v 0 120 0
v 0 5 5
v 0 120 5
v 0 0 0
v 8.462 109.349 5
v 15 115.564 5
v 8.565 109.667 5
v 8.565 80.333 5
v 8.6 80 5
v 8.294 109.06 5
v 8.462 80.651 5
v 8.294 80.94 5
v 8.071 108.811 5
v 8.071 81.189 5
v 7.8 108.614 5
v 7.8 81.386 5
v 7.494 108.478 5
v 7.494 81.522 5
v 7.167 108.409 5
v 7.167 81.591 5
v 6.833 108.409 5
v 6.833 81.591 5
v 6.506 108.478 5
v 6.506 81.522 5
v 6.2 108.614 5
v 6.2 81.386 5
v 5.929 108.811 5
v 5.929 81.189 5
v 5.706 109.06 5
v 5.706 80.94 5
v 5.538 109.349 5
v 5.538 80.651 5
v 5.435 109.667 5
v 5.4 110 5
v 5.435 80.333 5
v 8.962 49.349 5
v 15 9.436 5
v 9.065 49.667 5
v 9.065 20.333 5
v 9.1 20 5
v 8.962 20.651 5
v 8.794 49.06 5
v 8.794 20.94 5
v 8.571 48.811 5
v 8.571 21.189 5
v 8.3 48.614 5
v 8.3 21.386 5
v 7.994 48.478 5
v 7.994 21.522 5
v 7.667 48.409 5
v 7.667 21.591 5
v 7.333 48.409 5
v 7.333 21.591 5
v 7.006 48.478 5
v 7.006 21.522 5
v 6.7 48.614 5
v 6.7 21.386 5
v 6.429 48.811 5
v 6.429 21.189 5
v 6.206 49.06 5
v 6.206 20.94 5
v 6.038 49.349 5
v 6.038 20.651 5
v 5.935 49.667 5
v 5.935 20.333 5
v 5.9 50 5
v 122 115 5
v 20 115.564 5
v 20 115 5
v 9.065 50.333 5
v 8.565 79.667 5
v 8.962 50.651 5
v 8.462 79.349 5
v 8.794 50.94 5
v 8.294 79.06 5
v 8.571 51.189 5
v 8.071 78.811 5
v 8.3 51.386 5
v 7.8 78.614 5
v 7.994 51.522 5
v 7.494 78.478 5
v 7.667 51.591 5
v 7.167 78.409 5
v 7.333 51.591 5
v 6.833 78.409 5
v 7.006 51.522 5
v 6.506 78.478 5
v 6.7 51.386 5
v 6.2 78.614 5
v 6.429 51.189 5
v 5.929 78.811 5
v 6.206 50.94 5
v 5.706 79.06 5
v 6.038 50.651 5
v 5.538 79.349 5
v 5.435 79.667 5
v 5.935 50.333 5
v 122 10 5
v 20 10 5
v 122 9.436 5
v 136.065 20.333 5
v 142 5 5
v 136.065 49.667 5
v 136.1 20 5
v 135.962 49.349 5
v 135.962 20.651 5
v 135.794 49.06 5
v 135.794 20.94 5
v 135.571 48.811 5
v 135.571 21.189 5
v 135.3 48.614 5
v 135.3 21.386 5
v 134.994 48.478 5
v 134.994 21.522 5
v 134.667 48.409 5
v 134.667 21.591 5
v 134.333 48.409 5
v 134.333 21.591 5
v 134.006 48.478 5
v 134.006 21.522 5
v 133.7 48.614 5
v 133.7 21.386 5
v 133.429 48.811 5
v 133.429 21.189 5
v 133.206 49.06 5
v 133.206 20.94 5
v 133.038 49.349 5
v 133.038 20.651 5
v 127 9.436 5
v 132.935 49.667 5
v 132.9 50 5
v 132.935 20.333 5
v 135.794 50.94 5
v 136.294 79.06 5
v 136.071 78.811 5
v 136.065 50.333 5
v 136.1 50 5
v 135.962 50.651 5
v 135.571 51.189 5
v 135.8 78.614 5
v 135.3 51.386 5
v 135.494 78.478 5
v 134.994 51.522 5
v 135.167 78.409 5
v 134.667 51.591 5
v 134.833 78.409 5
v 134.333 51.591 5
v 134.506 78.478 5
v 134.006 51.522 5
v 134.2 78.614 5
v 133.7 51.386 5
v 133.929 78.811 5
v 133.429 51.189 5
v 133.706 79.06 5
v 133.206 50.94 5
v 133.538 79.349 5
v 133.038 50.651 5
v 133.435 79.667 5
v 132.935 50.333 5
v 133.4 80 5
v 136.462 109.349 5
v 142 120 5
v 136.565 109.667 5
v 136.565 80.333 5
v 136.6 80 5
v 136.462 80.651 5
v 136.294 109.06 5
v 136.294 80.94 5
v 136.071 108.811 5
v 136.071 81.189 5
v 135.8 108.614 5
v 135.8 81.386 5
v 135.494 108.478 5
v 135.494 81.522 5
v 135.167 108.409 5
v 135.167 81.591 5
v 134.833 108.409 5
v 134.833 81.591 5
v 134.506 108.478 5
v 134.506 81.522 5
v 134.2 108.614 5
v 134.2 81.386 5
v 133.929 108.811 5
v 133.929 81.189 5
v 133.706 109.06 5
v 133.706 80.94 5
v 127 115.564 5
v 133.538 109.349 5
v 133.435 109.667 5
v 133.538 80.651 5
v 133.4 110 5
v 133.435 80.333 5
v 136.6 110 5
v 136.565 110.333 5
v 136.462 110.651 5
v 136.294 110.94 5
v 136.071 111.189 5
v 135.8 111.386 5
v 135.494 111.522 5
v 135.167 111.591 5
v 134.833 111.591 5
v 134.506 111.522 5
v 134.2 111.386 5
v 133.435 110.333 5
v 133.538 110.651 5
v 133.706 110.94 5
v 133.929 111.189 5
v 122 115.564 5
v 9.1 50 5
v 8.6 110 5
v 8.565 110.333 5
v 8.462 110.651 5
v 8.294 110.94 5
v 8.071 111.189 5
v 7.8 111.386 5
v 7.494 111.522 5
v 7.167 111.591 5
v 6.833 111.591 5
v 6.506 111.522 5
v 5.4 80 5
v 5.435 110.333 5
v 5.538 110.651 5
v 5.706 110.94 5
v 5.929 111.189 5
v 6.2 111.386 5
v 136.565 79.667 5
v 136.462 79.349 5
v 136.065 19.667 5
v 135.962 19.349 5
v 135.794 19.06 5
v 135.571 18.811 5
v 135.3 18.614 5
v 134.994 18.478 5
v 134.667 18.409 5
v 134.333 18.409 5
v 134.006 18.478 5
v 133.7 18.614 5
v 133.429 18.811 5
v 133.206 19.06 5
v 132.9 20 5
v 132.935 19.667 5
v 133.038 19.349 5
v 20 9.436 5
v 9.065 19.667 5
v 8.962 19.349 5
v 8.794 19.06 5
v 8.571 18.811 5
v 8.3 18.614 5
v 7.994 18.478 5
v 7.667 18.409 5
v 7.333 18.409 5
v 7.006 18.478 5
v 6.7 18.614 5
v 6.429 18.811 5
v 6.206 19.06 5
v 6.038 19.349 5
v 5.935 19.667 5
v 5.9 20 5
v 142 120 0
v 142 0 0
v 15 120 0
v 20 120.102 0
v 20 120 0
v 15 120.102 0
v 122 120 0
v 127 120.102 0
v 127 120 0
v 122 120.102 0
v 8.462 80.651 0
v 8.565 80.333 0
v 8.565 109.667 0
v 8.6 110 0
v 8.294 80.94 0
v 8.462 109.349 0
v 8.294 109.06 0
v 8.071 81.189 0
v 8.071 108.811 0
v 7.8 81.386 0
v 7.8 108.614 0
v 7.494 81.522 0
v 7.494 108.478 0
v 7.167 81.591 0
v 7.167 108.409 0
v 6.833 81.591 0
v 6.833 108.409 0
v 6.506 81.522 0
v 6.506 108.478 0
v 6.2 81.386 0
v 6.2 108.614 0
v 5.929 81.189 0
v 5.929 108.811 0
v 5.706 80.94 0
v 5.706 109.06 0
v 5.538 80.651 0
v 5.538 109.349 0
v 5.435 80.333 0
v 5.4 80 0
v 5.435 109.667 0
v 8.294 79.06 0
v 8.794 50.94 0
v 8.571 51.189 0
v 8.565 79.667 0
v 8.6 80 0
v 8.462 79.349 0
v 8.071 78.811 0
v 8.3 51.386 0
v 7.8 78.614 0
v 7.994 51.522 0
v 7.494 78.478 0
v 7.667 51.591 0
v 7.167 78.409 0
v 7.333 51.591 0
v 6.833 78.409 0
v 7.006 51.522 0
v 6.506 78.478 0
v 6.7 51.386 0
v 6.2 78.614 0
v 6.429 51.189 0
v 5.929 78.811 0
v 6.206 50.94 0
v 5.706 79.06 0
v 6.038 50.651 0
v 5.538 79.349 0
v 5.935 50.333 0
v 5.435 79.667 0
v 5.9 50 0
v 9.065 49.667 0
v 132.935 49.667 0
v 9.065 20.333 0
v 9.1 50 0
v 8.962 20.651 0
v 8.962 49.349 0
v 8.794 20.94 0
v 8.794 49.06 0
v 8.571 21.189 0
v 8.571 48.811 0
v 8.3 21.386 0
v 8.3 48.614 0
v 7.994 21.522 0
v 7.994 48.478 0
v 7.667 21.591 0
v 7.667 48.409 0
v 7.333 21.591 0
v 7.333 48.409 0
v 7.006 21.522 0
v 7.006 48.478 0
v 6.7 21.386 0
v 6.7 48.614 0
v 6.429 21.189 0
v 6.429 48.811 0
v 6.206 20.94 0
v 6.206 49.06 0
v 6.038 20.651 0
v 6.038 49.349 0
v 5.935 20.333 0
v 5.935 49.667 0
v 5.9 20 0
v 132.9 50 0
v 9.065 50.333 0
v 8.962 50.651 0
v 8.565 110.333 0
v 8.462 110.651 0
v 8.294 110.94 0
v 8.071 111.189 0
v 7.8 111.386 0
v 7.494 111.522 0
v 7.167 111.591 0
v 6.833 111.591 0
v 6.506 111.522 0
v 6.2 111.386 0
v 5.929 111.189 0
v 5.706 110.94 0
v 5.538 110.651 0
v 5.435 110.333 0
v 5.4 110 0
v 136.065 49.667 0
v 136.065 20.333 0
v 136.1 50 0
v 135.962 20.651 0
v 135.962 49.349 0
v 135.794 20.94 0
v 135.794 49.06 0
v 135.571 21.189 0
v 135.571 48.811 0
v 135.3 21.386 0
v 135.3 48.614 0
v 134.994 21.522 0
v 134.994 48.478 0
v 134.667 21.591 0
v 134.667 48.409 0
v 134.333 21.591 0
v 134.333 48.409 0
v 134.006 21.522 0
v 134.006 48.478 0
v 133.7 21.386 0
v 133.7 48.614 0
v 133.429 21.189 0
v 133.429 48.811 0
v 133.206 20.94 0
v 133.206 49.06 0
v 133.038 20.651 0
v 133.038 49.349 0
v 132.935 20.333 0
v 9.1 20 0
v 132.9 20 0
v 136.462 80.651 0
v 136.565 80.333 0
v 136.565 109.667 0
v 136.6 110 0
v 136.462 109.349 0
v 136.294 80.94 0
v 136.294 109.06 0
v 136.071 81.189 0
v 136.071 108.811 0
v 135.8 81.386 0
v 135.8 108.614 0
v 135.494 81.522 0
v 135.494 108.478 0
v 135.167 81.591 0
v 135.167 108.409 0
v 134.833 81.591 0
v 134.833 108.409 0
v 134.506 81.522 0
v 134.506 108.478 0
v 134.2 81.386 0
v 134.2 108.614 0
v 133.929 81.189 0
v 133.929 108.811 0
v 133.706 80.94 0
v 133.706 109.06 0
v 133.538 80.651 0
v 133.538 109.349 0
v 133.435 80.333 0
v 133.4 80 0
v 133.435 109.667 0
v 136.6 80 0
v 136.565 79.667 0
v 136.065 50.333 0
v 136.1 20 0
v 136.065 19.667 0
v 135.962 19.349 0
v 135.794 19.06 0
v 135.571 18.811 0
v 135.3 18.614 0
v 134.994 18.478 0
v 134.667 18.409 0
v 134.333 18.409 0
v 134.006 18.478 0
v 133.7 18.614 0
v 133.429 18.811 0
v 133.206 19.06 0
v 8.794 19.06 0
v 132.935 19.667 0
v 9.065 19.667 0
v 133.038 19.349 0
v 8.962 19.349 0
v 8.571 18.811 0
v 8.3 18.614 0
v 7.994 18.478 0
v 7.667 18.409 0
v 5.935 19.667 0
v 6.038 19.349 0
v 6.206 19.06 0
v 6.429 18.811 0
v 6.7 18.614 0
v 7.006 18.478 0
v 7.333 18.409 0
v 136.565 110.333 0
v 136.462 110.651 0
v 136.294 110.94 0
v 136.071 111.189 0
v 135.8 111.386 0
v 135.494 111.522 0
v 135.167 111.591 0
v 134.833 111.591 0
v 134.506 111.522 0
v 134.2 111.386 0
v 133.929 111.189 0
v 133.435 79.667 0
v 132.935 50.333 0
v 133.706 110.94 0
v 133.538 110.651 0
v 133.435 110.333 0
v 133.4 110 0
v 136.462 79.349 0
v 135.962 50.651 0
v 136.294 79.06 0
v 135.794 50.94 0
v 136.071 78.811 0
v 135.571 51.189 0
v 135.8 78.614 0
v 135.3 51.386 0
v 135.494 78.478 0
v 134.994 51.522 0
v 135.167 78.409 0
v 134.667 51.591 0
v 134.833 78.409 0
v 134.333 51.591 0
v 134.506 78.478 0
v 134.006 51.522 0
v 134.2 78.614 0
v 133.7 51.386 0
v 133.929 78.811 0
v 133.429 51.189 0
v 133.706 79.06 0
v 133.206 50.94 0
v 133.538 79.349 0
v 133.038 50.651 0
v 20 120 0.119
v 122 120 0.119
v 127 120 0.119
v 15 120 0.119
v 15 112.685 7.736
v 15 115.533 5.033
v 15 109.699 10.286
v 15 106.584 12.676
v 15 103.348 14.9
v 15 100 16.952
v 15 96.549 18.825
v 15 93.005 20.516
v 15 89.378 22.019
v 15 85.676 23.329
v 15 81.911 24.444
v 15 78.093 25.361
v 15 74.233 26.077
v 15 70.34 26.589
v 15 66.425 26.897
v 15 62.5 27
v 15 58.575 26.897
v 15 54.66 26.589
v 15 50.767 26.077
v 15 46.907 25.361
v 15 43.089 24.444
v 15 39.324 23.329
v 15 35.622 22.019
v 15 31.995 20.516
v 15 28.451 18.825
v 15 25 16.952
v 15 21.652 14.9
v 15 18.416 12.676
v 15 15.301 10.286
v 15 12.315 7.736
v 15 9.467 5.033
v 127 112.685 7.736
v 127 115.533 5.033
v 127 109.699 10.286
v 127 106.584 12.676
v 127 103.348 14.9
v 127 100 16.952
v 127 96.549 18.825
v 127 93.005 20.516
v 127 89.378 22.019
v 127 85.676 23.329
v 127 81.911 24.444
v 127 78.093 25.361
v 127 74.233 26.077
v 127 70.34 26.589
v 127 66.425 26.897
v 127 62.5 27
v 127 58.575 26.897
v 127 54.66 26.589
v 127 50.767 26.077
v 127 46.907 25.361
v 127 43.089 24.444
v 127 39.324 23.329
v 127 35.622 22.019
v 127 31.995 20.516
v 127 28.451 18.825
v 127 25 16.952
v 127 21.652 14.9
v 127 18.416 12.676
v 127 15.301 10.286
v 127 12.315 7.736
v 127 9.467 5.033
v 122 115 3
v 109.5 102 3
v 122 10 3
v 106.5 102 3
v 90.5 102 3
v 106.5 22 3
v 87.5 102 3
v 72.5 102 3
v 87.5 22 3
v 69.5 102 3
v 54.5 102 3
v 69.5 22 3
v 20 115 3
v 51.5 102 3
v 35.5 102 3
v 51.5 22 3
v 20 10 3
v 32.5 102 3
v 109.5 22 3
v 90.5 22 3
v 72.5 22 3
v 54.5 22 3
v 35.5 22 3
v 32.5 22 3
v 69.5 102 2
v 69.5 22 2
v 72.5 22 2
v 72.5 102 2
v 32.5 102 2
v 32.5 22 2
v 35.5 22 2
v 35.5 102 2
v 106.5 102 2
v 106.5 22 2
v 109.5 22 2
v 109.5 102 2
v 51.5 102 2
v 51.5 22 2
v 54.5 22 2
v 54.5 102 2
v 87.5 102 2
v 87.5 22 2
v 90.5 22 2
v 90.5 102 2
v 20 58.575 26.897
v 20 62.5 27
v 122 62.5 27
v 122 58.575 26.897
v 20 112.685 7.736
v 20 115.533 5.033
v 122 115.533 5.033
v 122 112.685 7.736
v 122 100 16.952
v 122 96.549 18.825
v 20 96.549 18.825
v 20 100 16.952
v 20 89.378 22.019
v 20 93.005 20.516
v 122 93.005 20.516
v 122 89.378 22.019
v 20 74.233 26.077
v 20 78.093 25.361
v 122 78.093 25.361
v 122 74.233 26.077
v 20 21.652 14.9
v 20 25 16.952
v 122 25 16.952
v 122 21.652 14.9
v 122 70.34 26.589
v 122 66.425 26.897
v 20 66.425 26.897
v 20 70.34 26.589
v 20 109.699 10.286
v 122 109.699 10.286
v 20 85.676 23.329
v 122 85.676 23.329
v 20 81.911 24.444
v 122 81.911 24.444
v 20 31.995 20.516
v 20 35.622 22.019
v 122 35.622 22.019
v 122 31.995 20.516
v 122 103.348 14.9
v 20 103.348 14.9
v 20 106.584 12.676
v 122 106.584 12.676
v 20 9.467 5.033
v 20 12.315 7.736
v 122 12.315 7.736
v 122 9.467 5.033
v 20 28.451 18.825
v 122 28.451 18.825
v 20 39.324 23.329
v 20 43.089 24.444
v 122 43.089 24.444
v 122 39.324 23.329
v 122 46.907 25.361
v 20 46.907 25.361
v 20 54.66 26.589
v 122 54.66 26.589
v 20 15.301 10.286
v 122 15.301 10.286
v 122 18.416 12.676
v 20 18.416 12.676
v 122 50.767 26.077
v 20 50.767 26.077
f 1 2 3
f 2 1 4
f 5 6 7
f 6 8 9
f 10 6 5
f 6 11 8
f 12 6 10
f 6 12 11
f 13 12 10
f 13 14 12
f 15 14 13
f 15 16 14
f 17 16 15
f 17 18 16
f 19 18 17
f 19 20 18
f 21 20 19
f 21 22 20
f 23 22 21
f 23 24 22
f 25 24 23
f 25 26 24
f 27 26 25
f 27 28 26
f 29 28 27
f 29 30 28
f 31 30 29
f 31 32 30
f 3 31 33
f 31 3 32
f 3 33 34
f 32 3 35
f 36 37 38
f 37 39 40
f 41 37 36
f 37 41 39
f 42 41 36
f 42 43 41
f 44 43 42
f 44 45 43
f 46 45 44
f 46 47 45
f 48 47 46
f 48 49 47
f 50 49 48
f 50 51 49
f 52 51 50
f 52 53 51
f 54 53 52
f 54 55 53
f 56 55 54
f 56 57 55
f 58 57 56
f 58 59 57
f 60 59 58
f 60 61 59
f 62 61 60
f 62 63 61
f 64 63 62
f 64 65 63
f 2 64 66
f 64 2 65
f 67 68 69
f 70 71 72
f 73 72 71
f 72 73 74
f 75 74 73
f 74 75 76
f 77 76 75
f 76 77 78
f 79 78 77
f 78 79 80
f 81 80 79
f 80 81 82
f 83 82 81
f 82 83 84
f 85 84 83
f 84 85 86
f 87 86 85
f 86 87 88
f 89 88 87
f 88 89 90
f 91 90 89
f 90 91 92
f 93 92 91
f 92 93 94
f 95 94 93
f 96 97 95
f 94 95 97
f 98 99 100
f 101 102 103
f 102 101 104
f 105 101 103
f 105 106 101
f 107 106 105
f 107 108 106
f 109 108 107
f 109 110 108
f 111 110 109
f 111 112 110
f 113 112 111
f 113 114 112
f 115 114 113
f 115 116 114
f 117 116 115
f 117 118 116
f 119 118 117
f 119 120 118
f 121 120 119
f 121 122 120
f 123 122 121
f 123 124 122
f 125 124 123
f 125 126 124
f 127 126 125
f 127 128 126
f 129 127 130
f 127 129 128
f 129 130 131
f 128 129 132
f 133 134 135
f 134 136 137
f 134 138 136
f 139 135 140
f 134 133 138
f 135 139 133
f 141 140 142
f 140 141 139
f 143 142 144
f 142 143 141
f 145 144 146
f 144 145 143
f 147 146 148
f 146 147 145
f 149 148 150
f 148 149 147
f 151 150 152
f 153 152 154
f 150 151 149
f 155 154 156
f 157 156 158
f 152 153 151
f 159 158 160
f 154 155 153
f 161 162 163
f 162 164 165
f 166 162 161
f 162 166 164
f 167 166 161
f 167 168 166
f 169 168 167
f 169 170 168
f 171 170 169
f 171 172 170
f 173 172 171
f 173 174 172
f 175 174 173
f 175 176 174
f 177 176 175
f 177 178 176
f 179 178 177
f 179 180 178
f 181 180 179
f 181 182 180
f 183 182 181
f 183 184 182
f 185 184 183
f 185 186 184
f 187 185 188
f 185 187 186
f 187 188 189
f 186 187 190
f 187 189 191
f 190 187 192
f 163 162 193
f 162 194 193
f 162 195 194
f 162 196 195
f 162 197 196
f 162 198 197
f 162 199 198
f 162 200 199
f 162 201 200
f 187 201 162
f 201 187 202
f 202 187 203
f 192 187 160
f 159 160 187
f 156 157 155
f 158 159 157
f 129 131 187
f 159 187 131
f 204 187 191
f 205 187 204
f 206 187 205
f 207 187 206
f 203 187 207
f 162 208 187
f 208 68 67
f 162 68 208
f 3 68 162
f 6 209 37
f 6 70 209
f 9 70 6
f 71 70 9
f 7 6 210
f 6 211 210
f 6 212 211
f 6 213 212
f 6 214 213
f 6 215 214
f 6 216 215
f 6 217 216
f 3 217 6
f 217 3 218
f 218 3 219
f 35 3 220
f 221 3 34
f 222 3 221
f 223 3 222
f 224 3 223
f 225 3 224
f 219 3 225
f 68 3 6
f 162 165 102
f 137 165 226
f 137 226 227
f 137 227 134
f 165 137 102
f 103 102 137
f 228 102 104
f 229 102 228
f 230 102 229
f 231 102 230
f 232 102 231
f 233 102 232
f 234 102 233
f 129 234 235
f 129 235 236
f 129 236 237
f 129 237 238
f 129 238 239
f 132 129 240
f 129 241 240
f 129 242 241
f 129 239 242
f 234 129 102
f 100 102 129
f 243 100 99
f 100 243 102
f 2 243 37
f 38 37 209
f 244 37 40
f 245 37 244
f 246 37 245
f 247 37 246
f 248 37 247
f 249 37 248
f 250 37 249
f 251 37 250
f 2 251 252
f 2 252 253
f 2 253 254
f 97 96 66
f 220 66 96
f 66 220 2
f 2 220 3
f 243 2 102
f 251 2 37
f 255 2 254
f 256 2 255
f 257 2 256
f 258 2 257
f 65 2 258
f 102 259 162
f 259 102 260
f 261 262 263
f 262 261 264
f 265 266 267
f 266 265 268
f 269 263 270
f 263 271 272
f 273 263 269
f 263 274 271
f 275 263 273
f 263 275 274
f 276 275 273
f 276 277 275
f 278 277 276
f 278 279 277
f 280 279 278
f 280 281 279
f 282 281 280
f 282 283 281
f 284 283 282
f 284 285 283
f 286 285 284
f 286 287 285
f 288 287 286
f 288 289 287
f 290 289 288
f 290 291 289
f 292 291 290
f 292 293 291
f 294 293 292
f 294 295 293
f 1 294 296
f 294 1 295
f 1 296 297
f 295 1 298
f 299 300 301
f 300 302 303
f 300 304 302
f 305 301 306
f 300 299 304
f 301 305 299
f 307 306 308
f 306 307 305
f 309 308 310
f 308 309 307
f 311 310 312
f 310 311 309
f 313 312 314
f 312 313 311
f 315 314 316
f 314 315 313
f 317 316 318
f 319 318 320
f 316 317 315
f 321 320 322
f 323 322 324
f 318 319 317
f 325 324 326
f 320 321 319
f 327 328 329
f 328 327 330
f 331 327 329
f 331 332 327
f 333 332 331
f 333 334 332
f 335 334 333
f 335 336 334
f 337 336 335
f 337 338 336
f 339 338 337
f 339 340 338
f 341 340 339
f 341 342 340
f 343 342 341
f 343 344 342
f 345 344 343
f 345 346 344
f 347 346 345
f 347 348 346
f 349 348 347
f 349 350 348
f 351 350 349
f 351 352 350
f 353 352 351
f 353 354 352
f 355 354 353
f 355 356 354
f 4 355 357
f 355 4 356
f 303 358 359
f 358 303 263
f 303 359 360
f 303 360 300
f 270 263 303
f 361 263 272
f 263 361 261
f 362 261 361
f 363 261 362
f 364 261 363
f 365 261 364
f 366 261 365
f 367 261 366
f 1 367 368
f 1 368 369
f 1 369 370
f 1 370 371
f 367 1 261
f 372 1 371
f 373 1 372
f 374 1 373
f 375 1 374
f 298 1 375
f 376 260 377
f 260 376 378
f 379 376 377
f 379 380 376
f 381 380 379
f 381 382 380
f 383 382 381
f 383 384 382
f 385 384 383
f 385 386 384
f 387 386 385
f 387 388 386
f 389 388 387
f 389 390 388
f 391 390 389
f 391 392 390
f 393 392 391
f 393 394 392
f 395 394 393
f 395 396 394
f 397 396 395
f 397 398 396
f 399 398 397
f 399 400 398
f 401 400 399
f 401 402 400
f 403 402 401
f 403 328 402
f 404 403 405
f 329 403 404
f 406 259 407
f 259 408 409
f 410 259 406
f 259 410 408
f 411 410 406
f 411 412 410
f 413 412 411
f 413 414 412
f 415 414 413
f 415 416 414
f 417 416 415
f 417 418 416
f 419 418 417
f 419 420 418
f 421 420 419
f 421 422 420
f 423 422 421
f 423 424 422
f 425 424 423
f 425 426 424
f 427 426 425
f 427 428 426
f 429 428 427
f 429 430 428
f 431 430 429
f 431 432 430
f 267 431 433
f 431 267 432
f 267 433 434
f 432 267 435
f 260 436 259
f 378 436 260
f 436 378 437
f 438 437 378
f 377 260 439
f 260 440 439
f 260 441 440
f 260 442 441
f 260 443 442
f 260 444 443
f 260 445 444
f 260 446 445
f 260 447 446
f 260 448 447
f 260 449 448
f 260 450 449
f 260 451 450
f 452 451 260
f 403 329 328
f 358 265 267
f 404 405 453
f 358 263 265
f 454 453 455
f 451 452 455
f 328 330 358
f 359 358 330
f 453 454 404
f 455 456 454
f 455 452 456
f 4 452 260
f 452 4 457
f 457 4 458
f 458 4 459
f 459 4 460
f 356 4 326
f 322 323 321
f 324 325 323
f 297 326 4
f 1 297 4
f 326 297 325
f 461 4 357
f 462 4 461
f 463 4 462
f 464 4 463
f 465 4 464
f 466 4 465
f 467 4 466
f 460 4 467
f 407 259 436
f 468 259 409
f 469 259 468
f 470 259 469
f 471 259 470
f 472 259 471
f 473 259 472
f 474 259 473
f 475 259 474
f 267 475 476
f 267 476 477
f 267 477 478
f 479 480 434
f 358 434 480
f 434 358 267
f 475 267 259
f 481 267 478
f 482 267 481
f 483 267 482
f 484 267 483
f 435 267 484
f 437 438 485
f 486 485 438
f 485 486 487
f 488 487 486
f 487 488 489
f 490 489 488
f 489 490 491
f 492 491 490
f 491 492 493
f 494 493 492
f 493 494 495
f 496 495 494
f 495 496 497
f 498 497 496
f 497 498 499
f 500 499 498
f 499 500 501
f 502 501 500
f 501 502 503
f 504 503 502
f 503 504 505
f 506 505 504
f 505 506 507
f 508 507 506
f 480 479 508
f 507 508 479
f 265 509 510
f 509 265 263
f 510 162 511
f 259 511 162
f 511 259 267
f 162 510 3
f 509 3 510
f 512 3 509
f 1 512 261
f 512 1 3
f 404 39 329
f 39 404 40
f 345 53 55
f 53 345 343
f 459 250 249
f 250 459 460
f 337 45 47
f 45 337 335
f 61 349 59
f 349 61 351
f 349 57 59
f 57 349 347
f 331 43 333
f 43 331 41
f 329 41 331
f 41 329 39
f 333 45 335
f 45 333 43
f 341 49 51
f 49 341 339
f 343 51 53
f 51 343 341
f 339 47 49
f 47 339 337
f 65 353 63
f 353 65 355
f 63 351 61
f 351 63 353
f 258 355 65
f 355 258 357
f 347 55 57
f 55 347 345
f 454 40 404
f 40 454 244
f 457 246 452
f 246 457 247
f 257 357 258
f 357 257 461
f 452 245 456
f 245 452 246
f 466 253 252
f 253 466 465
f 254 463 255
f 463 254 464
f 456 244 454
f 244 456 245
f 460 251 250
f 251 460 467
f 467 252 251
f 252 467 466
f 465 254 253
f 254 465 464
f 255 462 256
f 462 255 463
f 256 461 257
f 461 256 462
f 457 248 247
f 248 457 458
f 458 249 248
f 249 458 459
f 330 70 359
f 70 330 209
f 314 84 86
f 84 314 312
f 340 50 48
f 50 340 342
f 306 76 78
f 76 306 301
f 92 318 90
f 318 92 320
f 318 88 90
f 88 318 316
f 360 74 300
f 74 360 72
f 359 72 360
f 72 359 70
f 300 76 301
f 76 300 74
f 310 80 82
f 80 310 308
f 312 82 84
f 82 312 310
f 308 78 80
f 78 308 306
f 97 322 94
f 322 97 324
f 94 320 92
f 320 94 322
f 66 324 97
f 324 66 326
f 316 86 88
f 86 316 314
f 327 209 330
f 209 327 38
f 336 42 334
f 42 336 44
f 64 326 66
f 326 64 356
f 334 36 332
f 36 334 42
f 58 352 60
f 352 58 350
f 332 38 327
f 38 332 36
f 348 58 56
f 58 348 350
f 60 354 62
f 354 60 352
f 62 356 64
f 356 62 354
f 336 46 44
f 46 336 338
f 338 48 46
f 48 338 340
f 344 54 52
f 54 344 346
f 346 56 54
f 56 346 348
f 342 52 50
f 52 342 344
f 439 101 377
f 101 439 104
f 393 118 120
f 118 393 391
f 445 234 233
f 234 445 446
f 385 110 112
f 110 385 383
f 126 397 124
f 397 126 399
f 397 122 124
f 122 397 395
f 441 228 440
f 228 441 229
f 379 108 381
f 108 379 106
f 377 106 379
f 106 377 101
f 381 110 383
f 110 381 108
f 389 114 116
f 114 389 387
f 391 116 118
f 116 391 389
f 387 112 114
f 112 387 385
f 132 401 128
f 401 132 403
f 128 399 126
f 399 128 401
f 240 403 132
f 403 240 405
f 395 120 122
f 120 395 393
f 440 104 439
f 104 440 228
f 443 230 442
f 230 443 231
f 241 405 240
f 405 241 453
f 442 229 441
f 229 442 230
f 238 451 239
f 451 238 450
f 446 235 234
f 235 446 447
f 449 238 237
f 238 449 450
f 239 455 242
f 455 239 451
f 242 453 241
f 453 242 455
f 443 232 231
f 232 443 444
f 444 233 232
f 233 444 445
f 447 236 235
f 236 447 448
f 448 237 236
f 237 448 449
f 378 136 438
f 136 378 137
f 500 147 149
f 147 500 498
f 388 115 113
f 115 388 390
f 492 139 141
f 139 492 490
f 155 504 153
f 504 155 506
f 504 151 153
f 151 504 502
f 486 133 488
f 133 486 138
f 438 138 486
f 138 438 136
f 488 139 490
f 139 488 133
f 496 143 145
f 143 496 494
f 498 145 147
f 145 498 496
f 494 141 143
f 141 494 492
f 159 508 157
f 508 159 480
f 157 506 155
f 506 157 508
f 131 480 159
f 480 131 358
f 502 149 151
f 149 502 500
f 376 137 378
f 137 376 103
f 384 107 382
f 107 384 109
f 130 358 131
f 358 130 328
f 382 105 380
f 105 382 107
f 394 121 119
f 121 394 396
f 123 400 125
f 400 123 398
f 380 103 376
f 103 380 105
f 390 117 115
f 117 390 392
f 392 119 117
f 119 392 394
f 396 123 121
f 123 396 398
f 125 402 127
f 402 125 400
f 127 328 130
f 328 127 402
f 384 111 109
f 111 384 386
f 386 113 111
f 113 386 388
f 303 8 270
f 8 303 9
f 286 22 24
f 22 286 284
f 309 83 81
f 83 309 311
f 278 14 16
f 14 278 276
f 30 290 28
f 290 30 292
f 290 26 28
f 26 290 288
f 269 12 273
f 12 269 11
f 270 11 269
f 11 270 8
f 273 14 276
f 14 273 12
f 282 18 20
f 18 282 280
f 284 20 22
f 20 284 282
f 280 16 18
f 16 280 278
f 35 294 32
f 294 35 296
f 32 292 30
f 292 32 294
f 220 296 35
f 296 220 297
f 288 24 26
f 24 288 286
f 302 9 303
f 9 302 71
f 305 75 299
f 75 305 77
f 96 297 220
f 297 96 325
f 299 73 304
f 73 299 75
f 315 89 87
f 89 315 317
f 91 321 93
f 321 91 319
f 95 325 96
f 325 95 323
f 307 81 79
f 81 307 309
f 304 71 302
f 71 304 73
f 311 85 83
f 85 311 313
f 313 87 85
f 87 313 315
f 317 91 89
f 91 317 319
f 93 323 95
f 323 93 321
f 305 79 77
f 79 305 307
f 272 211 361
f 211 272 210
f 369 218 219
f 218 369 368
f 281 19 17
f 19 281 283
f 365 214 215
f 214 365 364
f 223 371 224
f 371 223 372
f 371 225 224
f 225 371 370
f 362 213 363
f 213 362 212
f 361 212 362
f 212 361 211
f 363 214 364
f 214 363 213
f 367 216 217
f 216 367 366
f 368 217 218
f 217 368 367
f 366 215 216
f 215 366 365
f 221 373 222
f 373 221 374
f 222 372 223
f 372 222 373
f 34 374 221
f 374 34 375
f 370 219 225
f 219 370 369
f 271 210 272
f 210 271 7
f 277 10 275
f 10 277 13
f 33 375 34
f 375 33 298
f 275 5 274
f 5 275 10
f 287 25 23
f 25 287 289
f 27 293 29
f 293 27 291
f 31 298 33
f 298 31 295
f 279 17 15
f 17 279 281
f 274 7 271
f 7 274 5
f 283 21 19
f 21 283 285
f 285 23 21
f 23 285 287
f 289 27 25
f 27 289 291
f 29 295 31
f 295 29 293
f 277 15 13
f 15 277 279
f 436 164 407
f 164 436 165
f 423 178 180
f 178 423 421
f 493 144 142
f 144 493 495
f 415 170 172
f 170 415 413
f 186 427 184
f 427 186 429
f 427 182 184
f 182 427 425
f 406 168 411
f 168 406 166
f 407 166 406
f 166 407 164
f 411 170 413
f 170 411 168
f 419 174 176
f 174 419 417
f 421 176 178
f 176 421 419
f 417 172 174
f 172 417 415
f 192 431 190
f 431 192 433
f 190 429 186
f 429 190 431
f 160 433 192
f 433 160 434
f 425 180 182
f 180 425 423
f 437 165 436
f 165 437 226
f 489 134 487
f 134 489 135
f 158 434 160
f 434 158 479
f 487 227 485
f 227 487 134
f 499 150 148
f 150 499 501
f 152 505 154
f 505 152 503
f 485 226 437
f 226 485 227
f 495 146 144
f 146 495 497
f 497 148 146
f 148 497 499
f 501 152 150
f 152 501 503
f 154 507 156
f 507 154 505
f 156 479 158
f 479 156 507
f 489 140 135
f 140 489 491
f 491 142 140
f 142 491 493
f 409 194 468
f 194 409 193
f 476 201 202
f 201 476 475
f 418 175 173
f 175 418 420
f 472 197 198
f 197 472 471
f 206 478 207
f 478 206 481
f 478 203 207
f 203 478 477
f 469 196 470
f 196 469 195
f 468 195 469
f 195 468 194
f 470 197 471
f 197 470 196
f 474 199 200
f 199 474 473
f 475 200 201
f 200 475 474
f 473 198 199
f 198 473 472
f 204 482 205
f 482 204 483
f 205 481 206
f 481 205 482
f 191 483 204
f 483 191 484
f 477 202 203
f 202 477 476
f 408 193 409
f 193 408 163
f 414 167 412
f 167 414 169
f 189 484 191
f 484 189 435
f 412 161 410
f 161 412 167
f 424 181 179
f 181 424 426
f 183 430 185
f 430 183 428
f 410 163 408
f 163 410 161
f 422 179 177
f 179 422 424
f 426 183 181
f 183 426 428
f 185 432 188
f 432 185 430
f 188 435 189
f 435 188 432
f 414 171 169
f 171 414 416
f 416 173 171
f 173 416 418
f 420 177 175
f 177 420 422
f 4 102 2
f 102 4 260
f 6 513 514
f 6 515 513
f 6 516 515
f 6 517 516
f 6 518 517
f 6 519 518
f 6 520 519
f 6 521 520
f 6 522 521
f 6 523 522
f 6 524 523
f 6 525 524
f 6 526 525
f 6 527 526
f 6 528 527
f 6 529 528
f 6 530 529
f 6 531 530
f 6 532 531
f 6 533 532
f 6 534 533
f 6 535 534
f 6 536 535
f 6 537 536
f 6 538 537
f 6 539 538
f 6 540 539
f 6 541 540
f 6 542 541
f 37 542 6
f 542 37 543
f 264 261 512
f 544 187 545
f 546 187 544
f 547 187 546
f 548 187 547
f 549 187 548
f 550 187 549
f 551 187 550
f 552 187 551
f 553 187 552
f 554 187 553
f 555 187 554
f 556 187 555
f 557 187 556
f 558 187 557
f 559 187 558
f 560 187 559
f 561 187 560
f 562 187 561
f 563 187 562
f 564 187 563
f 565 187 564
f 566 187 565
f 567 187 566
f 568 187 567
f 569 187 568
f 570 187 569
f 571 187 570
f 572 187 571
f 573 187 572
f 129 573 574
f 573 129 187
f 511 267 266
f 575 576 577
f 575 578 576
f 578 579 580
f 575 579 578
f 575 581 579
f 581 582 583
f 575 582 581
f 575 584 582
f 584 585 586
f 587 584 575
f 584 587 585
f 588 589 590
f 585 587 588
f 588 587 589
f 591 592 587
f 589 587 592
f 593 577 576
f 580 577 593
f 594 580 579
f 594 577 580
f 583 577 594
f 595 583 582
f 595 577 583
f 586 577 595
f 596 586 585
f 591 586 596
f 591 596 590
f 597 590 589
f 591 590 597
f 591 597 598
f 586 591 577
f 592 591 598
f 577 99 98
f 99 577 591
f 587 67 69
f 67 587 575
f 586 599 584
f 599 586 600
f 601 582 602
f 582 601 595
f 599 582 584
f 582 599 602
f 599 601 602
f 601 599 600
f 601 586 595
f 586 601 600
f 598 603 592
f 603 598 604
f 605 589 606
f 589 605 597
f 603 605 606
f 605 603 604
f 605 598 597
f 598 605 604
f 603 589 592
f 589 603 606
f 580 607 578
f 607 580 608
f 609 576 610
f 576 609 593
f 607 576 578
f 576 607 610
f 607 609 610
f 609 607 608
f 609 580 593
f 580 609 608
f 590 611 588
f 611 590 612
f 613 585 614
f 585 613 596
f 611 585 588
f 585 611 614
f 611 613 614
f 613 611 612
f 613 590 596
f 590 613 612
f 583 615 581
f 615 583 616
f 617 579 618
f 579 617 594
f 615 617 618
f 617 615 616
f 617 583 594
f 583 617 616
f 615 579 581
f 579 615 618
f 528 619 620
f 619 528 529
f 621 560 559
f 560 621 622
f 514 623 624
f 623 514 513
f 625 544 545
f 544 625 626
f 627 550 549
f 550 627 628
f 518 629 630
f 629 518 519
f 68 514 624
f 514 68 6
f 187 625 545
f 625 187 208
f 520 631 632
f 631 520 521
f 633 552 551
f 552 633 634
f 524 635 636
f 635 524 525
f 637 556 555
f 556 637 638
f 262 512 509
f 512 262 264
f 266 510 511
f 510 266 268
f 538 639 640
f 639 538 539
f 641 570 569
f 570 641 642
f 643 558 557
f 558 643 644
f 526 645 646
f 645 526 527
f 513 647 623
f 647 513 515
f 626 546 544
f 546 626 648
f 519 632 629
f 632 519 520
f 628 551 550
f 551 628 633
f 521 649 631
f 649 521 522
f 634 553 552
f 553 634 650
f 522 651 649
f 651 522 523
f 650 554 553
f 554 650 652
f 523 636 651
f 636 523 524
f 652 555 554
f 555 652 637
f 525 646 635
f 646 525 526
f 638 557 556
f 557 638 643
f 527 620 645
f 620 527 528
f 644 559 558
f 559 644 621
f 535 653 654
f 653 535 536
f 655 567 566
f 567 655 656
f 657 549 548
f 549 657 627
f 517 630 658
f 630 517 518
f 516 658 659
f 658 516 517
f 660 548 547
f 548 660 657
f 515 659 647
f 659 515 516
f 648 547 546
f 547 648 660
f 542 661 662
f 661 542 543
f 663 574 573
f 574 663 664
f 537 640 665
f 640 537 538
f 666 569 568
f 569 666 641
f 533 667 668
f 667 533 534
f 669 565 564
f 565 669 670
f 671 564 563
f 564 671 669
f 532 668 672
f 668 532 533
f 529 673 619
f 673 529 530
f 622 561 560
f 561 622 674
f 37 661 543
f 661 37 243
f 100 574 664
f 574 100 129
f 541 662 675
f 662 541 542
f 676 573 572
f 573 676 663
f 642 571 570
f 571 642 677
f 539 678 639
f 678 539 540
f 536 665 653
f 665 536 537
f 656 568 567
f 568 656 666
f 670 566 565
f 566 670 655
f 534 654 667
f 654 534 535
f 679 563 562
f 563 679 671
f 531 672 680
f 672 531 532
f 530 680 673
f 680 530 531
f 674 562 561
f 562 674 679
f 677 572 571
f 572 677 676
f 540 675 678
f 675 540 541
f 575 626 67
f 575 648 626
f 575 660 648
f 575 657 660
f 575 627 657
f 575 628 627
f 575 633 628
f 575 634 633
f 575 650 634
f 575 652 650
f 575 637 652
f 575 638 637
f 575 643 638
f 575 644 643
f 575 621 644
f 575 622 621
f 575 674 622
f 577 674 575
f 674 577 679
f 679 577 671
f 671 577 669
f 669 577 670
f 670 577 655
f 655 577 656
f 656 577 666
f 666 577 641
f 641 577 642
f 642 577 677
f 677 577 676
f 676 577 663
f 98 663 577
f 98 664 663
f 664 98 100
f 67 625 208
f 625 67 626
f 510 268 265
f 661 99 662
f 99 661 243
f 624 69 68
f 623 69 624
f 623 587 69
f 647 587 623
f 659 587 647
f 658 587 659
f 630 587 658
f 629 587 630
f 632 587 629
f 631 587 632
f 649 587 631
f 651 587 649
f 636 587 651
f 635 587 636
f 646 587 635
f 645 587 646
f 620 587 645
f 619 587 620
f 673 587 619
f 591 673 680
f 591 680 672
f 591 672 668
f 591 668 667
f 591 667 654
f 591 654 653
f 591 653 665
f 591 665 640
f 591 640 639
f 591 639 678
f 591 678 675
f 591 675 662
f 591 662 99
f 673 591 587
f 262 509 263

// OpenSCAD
$fn=30;

difference(){
translate([0,0,0])cube([142,120,5]);
    
translate([7.5,20,0])cylinder(d=3.2,h=12);
translate([7.5,50,0])cylinder(d=3.2,h=12);
translate([142-7.5,20,0])cylinder(d=3.2,h=12);
translate([142-7.5,50,0])cylinder(d=3.2,h=12);

translate([7,80,0])cylinder(d=3.2,h=20);
translate([7,110,0])cylinder(d=3.2,h=20);
translate([142-7,80,0])cylinder(d=3.2,h=20);
translate([142-7,110,0])cylinder(d=3.2,h=20);

translate([-30,0,0])cylinder(d=10,h=142,$fn=4);
translate([0,0,5])rotate([0,90,0])
    cylinder(d=10,h=142,$fn=4);
    
translate([15,10,3])cube([112,105,5]); 

translate([69.5,22,2])cube([3,80,2]);
translate([69.5-37,22,2])cube([3,80,2]);
translate([69.5+37,22,2])cube([3,80,2]); 
translate([69.5-18,22,2])cube([3,80,2]);
translate([69.5+18,22,2])cube([3,80,2]); 

}

difference(){
translate([15,62.5,-48])rotate([0,90,0])
cylinder(d=150,h=112,$fn=120);
translate([20,62.5,-48])rotate([0,90,0])
cylinder(d=150,h=102,$fn=120);
translate([0,0,-250])cube(500,center=true);
}
